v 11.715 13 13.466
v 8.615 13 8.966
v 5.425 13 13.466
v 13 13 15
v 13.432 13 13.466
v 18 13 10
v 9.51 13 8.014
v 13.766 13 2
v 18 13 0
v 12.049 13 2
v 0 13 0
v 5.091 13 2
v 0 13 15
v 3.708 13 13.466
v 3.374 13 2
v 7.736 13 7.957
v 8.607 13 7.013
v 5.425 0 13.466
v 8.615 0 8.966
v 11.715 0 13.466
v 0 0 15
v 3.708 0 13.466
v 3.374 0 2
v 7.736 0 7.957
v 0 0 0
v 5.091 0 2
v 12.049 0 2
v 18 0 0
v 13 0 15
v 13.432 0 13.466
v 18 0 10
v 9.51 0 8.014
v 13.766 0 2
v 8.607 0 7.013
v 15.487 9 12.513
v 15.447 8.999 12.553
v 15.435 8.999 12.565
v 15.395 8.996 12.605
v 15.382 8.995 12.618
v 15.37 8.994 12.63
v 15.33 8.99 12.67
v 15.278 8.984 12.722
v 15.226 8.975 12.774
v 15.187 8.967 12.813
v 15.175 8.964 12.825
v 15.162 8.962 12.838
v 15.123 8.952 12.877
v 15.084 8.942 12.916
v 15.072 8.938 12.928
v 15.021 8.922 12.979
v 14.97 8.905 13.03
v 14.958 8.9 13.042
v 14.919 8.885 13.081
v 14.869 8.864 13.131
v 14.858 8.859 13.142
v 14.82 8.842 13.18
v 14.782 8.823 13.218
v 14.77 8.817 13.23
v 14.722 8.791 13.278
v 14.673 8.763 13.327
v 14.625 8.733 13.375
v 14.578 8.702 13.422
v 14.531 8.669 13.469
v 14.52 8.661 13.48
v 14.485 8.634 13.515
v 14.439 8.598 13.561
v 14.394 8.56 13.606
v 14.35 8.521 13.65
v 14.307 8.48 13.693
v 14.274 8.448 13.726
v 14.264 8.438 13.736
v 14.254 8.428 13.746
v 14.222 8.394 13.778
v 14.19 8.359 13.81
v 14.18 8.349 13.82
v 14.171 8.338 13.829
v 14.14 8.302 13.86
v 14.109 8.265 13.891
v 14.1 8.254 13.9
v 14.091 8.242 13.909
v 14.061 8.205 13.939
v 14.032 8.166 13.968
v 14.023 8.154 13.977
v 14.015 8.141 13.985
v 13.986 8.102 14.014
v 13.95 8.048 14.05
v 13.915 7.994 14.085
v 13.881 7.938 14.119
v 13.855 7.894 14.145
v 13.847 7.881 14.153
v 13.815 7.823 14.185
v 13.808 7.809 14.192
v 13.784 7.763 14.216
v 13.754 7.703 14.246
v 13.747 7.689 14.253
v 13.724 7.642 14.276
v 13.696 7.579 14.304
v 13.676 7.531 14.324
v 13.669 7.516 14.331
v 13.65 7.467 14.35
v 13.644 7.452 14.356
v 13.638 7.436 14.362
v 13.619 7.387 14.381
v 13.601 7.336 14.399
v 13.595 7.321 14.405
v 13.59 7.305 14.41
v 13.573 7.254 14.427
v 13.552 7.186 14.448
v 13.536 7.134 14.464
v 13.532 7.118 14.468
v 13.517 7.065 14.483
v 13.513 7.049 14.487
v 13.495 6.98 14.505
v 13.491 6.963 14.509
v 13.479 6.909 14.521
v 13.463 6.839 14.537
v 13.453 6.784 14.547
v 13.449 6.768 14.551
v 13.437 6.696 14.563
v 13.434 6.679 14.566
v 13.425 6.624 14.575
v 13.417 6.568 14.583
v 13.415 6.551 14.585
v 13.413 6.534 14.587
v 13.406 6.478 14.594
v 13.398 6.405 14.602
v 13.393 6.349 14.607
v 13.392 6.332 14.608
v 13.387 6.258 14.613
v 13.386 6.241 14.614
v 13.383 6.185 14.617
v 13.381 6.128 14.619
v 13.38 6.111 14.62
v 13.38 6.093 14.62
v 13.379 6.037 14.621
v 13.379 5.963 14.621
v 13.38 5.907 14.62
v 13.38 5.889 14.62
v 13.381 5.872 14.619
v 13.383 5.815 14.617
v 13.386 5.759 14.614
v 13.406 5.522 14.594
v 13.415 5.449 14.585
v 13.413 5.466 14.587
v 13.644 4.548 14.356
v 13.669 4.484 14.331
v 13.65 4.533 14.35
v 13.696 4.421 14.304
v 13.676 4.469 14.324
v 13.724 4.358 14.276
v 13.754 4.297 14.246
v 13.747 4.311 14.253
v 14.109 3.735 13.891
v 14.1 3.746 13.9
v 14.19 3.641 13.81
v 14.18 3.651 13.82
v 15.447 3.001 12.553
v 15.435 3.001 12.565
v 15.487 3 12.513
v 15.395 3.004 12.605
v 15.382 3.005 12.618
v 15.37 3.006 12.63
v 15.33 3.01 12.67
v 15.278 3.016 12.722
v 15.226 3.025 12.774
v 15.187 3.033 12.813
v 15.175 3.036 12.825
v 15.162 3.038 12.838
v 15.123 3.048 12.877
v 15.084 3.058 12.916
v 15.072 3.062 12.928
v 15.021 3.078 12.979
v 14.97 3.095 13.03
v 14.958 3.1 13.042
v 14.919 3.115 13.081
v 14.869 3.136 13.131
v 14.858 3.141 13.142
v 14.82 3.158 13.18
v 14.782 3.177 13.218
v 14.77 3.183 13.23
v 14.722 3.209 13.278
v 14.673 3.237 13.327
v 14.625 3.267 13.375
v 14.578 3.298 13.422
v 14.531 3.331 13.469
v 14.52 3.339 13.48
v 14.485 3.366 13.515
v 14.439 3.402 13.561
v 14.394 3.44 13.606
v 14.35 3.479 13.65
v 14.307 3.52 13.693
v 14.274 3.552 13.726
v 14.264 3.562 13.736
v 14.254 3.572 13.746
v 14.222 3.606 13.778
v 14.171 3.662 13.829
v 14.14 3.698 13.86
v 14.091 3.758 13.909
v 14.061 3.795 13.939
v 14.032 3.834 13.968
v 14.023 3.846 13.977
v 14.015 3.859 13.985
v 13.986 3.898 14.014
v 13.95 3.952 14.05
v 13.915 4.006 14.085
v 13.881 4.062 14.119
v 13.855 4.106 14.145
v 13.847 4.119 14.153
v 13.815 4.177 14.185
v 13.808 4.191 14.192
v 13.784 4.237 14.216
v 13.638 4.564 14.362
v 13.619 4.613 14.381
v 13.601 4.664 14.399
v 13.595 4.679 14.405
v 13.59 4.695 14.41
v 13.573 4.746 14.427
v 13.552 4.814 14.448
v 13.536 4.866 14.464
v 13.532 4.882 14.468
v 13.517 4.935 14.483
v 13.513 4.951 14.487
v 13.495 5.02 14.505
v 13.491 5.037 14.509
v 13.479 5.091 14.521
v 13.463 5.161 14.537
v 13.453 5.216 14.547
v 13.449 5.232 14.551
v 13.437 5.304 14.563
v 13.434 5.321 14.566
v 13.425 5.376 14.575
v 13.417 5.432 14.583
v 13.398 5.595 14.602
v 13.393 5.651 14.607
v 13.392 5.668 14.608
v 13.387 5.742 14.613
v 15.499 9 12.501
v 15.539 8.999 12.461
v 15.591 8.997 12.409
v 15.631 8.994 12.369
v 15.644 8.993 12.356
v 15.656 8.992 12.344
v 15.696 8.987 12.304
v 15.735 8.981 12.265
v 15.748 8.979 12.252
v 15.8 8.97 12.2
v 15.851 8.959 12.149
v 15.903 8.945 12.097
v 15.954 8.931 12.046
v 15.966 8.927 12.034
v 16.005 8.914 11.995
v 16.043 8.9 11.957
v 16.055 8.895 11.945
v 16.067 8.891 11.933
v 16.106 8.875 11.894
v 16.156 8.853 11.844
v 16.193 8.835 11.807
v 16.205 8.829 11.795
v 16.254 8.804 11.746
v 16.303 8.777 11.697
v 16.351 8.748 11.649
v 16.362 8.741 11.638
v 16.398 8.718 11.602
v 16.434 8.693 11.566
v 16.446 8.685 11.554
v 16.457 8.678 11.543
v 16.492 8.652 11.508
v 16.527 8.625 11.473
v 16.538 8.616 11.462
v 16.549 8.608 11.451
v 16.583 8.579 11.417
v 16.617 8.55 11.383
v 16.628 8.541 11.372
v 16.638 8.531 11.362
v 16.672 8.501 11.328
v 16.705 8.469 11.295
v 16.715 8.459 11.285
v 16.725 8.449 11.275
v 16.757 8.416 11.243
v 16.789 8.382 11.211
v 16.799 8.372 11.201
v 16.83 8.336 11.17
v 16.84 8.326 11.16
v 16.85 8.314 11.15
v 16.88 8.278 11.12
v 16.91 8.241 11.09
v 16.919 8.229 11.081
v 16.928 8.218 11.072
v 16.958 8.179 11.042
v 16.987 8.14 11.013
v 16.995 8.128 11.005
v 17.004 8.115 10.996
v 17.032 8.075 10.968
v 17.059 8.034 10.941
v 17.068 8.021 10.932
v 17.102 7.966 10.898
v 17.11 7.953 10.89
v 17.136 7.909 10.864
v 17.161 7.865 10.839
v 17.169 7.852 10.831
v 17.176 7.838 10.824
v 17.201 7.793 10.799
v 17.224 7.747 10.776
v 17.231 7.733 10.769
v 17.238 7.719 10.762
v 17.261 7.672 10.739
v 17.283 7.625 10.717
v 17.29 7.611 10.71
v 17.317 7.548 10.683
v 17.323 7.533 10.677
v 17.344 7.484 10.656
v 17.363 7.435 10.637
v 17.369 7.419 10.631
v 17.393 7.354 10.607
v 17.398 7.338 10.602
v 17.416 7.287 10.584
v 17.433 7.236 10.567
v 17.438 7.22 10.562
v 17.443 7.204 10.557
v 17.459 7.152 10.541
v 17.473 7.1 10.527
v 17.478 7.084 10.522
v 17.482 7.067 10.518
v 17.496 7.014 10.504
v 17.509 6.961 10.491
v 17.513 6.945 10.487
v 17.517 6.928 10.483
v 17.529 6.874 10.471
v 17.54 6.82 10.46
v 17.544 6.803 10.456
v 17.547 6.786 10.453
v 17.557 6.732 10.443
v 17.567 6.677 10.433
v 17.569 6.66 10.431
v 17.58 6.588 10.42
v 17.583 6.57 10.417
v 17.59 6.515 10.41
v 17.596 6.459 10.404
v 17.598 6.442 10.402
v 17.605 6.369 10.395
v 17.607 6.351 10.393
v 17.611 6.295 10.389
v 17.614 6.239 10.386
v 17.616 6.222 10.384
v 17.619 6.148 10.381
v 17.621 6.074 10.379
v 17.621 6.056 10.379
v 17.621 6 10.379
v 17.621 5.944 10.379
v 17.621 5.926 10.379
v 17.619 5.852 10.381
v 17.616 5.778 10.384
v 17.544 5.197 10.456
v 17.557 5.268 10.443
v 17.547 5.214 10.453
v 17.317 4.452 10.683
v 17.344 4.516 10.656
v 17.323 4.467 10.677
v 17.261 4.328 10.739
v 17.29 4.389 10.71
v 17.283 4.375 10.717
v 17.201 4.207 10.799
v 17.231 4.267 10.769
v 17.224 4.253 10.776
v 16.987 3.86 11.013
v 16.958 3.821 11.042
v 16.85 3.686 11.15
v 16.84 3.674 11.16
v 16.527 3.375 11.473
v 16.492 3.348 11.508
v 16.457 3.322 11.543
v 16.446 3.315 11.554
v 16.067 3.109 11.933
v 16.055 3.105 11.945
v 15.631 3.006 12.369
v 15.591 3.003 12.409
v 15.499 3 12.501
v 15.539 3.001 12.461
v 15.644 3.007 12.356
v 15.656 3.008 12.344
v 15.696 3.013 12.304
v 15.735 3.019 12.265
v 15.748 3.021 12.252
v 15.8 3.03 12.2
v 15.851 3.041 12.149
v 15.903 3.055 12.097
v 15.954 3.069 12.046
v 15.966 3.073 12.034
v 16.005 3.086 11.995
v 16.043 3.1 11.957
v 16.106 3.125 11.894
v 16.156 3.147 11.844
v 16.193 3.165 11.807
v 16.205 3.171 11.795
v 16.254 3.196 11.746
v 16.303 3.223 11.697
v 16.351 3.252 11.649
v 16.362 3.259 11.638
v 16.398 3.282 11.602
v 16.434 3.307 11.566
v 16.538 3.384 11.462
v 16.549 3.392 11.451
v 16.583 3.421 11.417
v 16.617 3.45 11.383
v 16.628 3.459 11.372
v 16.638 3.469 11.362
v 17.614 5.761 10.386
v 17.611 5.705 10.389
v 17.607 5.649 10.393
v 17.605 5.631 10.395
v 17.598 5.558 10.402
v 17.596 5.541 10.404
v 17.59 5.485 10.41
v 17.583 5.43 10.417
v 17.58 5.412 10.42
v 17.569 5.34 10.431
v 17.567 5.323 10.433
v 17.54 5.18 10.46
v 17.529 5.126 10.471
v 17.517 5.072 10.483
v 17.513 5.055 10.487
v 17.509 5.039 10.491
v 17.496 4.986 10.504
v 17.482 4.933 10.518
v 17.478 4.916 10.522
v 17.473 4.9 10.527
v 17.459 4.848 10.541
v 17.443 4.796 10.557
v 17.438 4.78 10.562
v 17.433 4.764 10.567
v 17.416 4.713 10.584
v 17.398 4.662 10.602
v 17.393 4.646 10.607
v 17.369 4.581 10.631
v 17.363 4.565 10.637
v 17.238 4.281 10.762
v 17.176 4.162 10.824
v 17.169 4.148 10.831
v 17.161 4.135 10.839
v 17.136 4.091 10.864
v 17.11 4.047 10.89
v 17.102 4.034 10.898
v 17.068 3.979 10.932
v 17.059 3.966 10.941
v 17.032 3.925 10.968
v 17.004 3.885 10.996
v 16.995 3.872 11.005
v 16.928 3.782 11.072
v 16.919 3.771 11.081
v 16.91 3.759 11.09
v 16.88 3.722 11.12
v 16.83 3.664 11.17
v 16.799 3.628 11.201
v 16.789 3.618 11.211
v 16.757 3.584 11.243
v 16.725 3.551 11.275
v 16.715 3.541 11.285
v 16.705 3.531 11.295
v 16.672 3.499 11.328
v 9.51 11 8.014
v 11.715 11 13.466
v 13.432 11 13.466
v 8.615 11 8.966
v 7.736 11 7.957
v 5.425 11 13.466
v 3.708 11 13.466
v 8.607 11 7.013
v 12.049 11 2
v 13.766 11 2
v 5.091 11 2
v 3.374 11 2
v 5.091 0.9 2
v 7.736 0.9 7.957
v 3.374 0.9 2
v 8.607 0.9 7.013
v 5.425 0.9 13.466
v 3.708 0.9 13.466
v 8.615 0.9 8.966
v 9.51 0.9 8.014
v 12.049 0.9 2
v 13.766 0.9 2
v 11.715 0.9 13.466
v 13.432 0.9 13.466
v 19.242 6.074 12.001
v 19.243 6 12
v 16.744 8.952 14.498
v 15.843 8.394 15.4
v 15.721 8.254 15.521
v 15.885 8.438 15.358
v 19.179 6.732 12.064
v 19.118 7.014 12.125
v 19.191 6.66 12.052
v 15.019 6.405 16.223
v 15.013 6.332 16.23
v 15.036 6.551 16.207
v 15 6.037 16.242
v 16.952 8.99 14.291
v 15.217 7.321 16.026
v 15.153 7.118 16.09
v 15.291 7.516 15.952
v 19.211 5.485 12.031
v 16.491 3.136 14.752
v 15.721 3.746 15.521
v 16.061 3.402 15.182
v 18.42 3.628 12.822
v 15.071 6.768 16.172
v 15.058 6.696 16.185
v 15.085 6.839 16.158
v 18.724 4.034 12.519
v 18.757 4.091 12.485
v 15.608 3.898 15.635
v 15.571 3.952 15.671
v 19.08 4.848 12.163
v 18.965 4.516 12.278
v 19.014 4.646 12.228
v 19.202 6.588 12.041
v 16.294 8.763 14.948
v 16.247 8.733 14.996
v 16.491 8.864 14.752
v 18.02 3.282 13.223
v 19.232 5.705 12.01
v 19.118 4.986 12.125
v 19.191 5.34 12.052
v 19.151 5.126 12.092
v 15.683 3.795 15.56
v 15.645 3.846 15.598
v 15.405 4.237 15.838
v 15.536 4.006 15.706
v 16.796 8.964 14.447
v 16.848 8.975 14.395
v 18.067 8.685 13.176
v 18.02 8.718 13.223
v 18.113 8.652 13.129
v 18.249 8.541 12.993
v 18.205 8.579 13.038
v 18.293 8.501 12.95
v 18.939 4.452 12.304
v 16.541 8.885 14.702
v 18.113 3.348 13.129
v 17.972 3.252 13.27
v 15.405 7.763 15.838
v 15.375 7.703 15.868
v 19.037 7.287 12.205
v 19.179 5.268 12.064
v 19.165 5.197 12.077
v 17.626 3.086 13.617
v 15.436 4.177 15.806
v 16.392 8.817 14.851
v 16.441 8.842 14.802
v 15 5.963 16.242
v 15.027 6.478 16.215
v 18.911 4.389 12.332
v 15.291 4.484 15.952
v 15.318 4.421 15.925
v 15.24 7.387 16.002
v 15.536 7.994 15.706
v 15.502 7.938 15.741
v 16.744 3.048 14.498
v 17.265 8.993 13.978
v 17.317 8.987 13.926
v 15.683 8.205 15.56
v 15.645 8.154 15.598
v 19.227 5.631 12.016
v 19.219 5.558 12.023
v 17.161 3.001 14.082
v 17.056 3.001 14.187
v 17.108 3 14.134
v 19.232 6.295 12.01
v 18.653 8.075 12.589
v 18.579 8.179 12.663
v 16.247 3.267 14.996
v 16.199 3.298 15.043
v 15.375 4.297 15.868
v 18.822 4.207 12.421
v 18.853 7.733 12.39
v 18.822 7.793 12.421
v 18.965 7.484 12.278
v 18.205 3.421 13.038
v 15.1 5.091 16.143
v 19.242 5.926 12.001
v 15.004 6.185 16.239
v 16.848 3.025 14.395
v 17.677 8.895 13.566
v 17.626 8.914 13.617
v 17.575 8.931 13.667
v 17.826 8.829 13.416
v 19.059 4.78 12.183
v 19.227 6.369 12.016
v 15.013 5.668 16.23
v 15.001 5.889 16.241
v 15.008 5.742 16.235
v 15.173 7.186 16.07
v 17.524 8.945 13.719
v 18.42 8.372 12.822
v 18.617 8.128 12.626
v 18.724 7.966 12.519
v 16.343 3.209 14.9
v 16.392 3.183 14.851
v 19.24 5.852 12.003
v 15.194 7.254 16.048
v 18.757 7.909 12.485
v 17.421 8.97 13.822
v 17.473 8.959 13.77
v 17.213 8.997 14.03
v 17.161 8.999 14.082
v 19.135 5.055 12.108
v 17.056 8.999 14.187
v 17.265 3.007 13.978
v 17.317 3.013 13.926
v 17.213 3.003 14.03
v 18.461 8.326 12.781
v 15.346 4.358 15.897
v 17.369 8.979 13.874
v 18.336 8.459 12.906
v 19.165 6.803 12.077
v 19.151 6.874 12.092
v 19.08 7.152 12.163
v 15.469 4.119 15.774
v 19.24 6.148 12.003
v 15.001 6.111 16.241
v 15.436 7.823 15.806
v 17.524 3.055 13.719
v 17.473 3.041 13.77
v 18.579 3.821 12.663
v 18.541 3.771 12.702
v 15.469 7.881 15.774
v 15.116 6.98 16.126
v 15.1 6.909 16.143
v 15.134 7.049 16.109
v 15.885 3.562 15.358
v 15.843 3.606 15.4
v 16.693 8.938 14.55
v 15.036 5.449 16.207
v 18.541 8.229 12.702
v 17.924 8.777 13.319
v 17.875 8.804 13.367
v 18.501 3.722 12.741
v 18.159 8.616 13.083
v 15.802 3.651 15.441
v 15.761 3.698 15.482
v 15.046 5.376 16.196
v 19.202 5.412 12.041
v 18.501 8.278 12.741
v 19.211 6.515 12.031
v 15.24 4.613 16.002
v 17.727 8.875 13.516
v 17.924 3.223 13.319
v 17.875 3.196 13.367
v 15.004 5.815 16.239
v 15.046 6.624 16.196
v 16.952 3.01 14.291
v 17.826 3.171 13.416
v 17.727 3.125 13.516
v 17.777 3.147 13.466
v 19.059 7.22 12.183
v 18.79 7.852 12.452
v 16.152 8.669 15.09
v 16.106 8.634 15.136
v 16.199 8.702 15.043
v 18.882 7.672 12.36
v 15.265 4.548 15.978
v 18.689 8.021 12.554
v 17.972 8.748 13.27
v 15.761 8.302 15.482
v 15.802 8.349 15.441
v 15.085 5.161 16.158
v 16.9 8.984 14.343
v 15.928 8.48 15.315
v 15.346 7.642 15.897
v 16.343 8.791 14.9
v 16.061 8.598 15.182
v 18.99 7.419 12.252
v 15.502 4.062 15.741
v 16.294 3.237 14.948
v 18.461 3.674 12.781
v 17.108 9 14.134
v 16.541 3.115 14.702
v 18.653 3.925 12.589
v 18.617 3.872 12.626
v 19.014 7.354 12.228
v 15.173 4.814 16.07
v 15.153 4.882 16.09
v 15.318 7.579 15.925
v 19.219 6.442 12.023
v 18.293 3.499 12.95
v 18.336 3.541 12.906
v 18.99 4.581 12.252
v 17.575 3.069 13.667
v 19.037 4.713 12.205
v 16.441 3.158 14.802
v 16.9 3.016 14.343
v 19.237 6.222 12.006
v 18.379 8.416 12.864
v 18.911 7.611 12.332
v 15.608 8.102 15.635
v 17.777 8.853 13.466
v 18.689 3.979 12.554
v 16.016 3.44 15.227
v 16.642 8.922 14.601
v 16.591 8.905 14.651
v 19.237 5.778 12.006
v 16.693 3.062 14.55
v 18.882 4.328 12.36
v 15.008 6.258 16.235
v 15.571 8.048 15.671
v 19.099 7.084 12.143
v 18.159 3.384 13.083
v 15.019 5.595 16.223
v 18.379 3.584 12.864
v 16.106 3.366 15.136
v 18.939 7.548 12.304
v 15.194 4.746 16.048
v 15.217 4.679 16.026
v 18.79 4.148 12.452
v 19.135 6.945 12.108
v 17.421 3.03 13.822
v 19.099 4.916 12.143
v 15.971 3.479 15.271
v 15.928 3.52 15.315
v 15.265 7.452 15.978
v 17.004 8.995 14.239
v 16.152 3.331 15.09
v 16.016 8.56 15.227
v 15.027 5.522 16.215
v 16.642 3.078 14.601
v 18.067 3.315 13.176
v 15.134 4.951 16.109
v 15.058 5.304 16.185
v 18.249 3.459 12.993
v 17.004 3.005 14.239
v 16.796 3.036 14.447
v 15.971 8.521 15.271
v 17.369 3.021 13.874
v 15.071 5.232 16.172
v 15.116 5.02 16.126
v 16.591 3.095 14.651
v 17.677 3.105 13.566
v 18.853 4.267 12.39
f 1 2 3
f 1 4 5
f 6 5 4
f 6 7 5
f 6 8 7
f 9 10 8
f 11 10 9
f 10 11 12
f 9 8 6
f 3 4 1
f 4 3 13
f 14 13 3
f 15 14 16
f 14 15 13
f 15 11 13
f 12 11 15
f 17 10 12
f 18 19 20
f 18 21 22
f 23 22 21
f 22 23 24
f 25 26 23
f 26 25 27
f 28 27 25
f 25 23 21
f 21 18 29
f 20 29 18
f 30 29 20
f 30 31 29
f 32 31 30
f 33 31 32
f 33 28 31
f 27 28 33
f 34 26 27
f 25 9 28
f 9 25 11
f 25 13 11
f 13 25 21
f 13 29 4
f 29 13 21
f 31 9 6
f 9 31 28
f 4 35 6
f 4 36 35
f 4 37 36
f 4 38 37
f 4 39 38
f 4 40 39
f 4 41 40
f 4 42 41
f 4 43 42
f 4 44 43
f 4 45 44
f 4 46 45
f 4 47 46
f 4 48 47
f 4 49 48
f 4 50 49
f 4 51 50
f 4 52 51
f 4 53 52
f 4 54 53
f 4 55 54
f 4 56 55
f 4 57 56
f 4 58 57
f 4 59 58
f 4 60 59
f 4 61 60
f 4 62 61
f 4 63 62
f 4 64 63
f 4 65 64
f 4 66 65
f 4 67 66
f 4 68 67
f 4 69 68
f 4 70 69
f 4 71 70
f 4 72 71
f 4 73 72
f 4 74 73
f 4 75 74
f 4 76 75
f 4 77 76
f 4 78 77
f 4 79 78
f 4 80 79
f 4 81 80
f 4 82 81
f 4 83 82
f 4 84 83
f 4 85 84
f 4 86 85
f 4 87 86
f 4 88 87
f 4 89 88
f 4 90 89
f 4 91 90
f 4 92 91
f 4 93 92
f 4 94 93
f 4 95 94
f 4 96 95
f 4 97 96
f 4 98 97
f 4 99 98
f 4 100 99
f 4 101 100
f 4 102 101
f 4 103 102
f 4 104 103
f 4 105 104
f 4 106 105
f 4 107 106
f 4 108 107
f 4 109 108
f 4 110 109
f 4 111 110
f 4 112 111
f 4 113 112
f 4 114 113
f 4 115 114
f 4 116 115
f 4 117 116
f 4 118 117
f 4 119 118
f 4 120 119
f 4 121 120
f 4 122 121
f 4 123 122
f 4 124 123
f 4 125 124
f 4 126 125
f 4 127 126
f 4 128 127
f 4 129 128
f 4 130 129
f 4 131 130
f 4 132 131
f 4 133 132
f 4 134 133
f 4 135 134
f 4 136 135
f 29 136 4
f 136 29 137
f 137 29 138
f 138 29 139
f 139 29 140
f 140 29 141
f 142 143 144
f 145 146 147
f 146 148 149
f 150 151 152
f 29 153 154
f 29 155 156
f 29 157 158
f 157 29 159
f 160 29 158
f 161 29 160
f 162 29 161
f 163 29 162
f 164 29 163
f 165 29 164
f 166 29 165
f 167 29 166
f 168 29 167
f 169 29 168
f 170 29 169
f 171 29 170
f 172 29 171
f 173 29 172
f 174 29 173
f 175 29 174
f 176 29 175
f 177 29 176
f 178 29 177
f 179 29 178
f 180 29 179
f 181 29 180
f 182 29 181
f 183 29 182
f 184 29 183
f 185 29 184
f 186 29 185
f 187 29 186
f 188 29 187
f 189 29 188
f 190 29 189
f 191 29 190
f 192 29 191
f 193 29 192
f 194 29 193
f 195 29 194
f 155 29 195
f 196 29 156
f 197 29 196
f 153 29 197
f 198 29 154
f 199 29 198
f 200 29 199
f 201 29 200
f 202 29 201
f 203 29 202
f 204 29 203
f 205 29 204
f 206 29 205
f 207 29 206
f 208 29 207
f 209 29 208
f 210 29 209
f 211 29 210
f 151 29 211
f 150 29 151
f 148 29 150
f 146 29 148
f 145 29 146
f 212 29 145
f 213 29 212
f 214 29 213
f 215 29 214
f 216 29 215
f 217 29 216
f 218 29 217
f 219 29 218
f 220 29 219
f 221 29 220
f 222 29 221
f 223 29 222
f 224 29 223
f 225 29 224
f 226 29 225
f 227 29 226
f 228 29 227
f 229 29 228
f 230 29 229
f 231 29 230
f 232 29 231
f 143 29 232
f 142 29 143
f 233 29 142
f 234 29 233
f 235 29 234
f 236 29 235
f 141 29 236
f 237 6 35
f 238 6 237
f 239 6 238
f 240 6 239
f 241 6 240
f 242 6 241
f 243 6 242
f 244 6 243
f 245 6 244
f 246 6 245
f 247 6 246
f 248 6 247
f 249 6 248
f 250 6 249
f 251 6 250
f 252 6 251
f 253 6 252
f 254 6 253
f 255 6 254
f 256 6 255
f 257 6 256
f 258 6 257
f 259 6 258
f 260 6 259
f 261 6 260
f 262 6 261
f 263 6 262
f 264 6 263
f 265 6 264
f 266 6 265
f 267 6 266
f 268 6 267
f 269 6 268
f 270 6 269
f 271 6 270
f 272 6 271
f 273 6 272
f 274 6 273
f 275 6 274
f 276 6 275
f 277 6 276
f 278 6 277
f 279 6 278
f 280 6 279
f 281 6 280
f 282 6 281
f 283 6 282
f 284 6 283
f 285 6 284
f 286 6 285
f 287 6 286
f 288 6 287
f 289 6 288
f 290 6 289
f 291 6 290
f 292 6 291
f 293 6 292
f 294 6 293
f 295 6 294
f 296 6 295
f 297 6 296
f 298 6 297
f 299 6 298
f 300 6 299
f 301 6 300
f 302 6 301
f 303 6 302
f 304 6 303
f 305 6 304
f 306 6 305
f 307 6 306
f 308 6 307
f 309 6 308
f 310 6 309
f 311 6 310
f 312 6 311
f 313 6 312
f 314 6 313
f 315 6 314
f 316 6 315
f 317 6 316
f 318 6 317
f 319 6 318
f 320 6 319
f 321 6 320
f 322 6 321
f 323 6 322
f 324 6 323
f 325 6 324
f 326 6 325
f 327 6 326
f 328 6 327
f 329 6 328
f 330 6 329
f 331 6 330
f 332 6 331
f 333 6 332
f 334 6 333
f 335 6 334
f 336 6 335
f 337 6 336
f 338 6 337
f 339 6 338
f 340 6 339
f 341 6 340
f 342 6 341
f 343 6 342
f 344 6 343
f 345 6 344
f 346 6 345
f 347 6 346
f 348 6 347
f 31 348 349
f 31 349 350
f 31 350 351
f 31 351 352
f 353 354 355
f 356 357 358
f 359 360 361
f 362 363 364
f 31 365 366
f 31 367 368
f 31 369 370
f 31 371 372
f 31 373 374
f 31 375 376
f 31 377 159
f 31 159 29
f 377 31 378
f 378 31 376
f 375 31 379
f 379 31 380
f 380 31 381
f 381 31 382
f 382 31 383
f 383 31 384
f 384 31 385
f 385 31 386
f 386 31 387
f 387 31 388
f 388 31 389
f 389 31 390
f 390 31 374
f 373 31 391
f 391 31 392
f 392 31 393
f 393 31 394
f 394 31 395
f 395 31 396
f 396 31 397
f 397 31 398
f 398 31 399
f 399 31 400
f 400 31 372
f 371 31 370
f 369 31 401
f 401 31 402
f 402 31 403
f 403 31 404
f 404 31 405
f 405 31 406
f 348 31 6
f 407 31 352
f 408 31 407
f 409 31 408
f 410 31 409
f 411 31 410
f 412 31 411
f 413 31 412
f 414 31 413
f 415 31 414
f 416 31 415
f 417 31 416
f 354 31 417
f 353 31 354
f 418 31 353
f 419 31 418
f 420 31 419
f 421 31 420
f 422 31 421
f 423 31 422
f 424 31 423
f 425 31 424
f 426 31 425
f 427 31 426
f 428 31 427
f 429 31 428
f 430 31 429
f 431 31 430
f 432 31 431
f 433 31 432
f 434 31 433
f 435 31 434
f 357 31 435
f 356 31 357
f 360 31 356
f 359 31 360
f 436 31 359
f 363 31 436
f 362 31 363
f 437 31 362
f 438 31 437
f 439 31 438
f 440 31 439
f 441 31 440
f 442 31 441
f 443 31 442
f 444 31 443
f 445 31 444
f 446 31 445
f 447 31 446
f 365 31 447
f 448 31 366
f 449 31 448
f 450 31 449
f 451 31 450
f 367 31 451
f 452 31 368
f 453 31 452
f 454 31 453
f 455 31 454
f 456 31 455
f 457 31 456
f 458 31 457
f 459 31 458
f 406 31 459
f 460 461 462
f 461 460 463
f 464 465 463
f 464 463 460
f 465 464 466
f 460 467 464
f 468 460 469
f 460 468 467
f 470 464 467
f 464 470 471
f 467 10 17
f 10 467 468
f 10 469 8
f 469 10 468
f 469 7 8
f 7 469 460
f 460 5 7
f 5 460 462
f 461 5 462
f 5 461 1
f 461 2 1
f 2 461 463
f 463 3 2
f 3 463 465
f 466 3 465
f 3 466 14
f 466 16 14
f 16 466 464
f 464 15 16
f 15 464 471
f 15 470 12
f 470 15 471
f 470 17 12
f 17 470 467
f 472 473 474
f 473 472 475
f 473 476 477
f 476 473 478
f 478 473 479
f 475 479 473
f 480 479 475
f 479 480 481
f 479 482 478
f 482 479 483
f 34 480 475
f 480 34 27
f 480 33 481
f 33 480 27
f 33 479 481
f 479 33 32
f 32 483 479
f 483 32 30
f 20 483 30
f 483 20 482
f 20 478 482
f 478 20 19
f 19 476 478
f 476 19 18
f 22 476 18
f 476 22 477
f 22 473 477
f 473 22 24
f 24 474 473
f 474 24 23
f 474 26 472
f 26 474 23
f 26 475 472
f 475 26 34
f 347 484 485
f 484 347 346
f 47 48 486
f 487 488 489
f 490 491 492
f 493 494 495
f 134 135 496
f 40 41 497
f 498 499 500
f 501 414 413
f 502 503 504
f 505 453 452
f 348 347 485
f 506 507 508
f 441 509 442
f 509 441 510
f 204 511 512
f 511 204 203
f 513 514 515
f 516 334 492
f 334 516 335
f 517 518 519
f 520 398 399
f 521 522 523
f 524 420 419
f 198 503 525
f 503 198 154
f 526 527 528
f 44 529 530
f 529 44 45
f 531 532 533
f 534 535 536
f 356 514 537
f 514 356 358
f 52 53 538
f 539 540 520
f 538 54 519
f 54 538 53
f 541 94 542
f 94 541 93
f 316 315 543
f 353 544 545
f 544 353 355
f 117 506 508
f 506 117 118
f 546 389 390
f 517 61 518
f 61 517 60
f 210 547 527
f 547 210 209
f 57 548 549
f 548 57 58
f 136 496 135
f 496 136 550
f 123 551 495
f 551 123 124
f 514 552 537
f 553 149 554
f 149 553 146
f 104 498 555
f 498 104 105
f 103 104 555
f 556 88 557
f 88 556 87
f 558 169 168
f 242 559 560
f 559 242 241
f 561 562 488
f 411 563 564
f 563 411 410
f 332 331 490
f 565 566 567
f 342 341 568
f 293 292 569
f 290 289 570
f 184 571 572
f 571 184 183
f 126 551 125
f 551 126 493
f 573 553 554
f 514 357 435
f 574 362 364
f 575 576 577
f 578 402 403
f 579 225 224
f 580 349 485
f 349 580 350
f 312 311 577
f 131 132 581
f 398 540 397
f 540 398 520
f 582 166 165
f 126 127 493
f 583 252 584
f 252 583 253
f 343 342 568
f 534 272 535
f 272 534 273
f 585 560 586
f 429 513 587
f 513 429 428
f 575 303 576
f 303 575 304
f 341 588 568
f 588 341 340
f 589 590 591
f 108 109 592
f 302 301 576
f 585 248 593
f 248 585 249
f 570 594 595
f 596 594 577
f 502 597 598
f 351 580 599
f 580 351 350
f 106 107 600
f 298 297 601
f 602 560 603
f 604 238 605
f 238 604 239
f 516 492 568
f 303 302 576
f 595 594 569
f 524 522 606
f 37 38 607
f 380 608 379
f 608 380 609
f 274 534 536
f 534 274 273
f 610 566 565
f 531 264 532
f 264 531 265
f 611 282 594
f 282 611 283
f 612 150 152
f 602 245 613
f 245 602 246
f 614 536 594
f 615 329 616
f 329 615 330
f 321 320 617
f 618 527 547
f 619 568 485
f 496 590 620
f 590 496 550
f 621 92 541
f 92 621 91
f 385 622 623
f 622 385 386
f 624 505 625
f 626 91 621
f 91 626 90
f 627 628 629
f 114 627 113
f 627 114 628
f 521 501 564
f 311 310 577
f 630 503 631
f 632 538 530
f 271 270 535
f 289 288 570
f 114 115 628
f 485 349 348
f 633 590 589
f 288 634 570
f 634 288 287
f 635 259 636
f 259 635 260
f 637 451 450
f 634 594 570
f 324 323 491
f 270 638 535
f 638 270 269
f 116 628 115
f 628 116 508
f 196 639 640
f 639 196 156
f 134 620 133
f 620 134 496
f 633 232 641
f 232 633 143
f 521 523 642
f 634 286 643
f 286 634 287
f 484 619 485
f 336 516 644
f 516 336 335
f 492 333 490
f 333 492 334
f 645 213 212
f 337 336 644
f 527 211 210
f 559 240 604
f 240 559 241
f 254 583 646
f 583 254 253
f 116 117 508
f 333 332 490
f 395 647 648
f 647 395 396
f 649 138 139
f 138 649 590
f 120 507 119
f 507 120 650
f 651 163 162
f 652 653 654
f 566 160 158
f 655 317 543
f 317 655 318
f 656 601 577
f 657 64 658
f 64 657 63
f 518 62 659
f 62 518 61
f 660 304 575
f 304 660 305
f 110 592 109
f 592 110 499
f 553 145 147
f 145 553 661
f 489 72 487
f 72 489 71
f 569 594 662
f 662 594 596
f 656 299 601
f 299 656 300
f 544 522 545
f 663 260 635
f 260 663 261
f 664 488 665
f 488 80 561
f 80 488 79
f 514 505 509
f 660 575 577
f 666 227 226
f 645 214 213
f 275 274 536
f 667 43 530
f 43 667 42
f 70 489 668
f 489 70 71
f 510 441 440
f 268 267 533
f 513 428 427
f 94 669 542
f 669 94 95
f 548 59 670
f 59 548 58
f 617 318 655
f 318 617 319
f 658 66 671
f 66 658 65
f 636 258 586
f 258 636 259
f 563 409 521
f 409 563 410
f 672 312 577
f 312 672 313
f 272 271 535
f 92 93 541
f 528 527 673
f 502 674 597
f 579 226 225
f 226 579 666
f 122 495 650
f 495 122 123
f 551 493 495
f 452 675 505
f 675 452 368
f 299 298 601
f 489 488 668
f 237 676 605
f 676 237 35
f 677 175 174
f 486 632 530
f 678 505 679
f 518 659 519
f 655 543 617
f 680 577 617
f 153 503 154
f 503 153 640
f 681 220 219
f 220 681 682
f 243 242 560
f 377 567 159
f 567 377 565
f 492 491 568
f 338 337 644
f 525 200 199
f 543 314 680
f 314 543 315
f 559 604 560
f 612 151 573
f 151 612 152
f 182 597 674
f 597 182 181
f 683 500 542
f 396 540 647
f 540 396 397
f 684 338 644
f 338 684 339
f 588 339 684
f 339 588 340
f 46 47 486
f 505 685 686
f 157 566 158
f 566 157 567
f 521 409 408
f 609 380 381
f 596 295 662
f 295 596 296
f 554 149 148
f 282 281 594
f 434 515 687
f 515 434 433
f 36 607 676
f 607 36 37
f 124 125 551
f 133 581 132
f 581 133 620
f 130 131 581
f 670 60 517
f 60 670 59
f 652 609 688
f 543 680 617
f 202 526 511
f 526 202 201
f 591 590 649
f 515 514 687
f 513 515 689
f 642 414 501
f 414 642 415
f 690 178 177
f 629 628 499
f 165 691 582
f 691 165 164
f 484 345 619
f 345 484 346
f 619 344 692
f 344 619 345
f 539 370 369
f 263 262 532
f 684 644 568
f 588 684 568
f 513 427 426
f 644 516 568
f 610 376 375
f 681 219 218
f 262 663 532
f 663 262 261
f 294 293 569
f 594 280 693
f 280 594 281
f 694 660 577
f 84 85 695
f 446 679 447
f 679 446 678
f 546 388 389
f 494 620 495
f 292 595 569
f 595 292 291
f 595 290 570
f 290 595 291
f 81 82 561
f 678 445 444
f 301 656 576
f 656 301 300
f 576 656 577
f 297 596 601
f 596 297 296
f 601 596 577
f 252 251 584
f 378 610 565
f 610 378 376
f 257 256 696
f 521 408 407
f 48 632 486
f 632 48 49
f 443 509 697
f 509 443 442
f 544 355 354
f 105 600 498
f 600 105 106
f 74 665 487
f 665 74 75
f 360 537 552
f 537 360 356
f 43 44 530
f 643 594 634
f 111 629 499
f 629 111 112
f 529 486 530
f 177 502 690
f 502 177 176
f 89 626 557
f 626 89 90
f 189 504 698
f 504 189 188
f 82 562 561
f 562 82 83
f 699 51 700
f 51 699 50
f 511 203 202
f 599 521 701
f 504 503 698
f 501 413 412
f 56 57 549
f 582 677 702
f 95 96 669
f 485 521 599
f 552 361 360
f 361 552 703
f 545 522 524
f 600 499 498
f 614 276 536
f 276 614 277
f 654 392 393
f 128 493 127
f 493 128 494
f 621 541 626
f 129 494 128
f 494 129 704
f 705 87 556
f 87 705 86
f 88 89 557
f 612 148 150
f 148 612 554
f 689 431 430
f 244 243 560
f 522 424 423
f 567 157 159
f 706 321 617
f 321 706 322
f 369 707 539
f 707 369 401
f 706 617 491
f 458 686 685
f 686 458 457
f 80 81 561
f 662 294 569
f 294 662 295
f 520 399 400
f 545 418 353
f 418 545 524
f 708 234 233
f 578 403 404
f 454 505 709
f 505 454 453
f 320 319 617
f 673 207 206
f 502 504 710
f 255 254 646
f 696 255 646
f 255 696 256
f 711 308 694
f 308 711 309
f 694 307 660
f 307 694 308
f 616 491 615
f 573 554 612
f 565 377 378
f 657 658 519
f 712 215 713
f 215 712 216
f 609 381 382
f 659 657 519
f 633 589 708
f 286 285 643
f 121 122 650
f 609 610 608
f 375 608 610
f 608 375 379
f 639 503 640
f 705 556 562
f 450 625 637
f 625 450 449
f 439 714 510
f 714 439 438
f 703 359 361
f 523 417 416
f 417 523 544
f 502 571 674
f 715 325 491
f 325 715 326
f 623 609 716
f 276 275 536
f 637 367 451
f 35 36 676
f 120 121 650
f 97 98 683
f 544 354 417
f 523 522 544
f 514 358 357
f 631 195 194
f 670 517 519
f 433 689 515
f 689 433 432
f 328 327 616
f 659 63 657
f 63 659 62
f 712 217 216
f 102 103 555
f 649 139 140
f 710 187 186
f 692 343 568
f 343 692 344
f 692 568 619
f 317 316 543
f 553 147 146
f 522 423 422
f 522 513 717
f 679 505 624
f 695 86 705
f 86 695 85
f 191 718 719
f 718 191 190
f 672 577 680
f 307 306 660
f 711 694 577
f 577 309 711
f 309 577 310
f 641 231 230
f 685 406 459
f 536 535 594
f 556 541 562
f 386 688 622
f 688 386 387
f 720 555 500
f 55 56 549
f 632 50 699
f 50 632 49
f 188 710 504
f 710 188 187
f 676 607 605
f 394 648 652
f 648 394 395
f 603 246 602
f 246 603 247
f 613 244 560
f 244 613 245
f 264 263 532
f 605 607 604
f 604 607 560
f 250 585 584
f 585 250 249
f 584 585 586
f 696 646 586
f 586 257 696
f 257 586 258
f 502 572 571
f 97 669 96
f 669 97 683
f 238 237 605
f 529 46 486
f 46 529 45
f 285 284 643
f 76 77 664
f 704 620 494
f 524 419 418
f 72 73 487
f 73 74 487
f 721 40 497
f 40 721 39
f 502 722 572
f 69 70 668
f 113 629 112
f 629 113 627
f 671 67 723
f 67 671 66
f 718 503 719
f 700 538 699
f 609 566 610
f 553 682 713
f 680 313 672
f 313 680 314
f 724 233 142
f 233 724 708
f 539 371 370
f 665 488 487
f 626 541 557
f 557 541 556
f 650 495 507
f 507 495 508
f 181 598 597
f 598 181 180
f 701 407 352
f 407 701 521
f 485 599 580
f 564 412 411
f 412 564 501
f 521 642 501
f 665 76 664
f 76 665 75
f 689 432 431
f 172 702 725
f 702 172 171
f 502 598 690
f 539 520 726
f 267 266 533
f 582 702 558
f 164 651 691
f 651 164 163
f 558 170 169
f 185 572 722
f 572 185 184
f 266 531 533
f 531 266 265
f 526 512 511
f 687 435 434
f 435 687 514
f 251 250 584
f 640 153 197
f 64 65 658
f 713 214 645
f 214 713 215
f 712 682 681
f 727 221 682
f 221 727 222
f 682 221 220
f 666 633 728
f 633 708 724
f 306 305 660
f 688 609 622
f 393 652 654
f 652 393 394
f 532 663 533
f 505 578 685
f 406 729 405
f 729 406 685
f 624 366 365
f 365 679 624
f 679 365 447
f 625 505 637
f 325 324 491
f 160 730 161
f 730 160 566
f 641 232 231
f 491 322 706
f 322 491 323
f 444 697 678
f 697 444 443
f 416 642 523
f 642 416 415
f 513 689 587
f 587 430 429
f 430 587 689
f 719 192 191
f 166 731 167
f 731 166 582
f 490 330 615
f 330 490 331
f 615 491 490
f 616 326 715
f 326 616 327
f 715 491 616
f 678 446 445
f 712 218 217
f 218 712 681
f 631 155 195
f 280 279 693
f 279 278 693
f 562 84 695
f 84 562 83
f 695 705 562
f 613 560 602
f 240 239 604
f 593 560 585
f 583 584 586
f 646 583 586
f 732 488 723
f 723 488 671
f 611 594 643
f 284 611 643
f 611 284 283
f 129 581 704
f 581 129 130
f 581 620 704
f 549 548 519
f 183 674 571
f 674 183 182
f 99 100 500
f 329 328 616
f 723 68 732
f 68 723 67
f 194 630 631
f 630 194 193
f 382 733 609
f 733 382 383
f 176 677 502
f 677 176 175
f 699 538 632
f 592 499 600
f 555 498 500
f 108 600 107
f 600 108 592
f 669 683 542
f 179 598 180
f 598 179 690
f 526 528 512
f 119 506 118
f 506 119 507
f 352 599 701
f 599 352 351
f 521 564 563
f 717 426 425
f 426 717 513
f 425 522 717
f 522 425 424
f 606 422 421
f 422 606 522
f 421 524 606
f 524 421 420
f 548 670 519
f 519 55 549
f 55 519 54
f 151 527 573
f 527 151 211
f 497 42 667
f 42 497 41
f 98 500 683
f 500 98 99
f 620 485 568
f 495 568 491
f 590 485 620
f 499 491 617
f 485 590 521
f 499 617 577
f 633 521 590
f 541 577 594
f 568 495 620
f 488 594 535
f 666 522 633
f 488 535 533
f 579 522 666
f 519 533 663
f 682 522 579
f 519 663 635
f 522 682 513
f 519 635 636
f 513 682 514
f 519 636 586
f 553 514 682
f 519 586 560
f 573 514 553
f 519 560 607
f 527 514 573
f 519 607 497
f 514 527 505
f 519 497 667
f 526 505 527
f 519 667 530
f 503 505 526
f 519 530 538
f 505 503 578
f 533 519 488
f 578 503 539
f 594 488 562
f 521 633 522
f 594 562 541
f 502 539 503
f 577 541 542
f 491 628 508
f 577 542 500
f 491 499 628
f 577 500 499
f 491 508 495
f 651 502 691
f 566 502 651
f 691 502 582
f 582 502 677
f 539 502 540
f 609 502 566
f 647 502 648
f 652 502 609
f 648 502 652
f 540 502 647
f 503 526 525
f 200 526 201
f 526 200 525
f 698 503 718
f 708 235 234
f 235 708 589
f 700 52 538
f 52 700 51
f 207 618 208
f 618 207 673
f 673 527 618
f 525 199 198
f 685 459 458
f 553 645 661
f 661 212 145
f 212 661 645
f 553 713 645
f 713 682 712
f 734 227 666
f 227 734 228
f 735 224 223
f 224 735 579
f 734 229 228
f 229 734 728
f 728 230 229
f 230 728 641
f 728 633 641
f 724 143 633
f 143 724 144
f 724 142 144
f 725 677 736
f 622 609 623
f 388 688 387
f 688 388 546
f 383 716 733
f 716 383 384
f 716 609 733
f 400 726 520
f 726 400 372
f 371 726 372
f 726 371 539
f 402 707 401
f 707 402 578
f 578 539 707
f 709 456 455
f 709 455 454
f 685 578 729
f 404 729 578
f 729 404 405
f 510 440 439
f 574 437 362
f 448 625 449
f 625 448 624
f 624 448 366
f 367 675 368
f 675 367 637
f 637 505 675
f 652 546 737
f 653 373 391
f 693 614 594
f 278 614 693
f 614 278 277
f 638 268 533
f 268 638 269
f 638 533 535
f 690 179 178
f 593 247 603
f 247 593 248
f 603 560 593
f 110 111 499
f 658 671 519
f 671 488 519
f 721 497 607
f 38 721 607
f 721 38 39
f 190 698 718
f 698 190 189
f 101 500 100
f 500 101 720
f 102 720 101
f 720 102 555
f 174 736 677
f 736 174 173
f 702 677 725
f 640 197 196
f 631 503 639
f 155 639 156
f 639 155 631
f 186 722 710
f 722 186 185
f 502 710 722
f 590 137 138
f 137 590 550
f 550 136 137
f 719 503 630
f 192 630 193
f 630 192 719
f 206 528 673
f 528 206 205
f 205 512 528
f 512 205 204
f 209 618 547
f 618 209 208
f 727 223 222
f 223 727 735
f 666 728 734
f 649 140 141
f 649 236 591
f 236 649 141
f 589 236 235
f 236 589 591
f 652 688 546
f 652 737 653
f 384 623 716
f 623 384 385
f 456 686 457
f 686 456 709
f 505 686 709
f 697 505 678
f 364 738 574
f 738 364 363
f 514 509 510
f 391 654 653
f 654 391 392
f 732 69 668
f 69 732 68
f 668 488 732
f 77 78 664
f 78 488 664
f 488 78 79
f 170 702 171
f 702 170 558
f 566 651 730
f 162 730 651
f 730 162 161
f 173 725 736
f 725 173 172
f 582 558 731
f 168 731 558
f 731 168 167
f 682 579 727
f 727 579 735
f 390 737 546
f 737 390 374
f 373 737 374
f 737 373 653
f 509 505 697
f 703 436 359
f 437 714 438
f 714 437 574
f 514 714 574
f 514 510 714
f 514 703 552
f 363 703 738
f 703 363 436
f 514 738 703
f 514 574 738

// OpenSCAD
$fn=255;
//Box dimentions
input_length = 15;
input_height = 15;
input_depth = 10;

box_size = 3;
length = input_length;
height = input_height - box_size;
depth = input_depth;

//Box dimentions
bottom_back_left =   [0,      0,     0];
top_back_left =      [0,      0,     height];
bottom_front_left =  [0,      depth, 0];
top_front_left =     [0,      depth, height];
bottom_back_right =  [length, 0,     0];
top_back_right =     [length, 0,     height];
bottom_front_right = [length, depth, 0];
top_front_right =    [length, depth, height];

//Translation of cutaway
cutaway_rotation = [0, 45, 0];
cutaway_translate = [13, 0, 15];
//4.62962962963

//Funnel
funnel_translate = [15, 6, 12];
funnel_rotate = [0, 45, 0];
funnel_top_radius = input_depth * .3;
funnel_bottom_radius = input_depth * .3;
funnel_height = 3;

//Xs on sides
x_rotate = [90, 0, 0];
back_x_translate = [3, .9, 2];
front_x_translate = [3, 15, 2];
x_font = 12;
x_depth = 4;

box = [bottom_back_left, top_back_left, bottom_front_left, top_front_left, bottom_back_right, top_back_right, bottom_front_right, top_front_right];

//Main box
difference(){
	hull(){
		for(position = box){
			translate(position){
				cube(box_size);
			}
		}
	}
	translate(cutaway_translate){
		rotate(cutaway_rotation){
			cube(100, 100);
		}
	}
	translate(front_x_translate){
			rotate(x_rotate){
				linear_extrude(height=x_depth){
					text("X", size=x_font);
				}
			}
	}

	translate(back_x_translate){
		rotate(x_rotate){
			linear_extrude(height=x_depth){
				text("X", size=x_font);
			}
		}
	}
}
/*
translate(front_x_translate){
		rotate(x_rotate){
			linear_extrude(height=x_depth){
				text("X", size=x_font);
			}
		}
}
*/
//Funnel
translate(funnel_translate){
	rotate(funnel_rotate){
		cylinder(funnel_height, funnel_top_radius, funnel_bottom_radius);
	}
}
